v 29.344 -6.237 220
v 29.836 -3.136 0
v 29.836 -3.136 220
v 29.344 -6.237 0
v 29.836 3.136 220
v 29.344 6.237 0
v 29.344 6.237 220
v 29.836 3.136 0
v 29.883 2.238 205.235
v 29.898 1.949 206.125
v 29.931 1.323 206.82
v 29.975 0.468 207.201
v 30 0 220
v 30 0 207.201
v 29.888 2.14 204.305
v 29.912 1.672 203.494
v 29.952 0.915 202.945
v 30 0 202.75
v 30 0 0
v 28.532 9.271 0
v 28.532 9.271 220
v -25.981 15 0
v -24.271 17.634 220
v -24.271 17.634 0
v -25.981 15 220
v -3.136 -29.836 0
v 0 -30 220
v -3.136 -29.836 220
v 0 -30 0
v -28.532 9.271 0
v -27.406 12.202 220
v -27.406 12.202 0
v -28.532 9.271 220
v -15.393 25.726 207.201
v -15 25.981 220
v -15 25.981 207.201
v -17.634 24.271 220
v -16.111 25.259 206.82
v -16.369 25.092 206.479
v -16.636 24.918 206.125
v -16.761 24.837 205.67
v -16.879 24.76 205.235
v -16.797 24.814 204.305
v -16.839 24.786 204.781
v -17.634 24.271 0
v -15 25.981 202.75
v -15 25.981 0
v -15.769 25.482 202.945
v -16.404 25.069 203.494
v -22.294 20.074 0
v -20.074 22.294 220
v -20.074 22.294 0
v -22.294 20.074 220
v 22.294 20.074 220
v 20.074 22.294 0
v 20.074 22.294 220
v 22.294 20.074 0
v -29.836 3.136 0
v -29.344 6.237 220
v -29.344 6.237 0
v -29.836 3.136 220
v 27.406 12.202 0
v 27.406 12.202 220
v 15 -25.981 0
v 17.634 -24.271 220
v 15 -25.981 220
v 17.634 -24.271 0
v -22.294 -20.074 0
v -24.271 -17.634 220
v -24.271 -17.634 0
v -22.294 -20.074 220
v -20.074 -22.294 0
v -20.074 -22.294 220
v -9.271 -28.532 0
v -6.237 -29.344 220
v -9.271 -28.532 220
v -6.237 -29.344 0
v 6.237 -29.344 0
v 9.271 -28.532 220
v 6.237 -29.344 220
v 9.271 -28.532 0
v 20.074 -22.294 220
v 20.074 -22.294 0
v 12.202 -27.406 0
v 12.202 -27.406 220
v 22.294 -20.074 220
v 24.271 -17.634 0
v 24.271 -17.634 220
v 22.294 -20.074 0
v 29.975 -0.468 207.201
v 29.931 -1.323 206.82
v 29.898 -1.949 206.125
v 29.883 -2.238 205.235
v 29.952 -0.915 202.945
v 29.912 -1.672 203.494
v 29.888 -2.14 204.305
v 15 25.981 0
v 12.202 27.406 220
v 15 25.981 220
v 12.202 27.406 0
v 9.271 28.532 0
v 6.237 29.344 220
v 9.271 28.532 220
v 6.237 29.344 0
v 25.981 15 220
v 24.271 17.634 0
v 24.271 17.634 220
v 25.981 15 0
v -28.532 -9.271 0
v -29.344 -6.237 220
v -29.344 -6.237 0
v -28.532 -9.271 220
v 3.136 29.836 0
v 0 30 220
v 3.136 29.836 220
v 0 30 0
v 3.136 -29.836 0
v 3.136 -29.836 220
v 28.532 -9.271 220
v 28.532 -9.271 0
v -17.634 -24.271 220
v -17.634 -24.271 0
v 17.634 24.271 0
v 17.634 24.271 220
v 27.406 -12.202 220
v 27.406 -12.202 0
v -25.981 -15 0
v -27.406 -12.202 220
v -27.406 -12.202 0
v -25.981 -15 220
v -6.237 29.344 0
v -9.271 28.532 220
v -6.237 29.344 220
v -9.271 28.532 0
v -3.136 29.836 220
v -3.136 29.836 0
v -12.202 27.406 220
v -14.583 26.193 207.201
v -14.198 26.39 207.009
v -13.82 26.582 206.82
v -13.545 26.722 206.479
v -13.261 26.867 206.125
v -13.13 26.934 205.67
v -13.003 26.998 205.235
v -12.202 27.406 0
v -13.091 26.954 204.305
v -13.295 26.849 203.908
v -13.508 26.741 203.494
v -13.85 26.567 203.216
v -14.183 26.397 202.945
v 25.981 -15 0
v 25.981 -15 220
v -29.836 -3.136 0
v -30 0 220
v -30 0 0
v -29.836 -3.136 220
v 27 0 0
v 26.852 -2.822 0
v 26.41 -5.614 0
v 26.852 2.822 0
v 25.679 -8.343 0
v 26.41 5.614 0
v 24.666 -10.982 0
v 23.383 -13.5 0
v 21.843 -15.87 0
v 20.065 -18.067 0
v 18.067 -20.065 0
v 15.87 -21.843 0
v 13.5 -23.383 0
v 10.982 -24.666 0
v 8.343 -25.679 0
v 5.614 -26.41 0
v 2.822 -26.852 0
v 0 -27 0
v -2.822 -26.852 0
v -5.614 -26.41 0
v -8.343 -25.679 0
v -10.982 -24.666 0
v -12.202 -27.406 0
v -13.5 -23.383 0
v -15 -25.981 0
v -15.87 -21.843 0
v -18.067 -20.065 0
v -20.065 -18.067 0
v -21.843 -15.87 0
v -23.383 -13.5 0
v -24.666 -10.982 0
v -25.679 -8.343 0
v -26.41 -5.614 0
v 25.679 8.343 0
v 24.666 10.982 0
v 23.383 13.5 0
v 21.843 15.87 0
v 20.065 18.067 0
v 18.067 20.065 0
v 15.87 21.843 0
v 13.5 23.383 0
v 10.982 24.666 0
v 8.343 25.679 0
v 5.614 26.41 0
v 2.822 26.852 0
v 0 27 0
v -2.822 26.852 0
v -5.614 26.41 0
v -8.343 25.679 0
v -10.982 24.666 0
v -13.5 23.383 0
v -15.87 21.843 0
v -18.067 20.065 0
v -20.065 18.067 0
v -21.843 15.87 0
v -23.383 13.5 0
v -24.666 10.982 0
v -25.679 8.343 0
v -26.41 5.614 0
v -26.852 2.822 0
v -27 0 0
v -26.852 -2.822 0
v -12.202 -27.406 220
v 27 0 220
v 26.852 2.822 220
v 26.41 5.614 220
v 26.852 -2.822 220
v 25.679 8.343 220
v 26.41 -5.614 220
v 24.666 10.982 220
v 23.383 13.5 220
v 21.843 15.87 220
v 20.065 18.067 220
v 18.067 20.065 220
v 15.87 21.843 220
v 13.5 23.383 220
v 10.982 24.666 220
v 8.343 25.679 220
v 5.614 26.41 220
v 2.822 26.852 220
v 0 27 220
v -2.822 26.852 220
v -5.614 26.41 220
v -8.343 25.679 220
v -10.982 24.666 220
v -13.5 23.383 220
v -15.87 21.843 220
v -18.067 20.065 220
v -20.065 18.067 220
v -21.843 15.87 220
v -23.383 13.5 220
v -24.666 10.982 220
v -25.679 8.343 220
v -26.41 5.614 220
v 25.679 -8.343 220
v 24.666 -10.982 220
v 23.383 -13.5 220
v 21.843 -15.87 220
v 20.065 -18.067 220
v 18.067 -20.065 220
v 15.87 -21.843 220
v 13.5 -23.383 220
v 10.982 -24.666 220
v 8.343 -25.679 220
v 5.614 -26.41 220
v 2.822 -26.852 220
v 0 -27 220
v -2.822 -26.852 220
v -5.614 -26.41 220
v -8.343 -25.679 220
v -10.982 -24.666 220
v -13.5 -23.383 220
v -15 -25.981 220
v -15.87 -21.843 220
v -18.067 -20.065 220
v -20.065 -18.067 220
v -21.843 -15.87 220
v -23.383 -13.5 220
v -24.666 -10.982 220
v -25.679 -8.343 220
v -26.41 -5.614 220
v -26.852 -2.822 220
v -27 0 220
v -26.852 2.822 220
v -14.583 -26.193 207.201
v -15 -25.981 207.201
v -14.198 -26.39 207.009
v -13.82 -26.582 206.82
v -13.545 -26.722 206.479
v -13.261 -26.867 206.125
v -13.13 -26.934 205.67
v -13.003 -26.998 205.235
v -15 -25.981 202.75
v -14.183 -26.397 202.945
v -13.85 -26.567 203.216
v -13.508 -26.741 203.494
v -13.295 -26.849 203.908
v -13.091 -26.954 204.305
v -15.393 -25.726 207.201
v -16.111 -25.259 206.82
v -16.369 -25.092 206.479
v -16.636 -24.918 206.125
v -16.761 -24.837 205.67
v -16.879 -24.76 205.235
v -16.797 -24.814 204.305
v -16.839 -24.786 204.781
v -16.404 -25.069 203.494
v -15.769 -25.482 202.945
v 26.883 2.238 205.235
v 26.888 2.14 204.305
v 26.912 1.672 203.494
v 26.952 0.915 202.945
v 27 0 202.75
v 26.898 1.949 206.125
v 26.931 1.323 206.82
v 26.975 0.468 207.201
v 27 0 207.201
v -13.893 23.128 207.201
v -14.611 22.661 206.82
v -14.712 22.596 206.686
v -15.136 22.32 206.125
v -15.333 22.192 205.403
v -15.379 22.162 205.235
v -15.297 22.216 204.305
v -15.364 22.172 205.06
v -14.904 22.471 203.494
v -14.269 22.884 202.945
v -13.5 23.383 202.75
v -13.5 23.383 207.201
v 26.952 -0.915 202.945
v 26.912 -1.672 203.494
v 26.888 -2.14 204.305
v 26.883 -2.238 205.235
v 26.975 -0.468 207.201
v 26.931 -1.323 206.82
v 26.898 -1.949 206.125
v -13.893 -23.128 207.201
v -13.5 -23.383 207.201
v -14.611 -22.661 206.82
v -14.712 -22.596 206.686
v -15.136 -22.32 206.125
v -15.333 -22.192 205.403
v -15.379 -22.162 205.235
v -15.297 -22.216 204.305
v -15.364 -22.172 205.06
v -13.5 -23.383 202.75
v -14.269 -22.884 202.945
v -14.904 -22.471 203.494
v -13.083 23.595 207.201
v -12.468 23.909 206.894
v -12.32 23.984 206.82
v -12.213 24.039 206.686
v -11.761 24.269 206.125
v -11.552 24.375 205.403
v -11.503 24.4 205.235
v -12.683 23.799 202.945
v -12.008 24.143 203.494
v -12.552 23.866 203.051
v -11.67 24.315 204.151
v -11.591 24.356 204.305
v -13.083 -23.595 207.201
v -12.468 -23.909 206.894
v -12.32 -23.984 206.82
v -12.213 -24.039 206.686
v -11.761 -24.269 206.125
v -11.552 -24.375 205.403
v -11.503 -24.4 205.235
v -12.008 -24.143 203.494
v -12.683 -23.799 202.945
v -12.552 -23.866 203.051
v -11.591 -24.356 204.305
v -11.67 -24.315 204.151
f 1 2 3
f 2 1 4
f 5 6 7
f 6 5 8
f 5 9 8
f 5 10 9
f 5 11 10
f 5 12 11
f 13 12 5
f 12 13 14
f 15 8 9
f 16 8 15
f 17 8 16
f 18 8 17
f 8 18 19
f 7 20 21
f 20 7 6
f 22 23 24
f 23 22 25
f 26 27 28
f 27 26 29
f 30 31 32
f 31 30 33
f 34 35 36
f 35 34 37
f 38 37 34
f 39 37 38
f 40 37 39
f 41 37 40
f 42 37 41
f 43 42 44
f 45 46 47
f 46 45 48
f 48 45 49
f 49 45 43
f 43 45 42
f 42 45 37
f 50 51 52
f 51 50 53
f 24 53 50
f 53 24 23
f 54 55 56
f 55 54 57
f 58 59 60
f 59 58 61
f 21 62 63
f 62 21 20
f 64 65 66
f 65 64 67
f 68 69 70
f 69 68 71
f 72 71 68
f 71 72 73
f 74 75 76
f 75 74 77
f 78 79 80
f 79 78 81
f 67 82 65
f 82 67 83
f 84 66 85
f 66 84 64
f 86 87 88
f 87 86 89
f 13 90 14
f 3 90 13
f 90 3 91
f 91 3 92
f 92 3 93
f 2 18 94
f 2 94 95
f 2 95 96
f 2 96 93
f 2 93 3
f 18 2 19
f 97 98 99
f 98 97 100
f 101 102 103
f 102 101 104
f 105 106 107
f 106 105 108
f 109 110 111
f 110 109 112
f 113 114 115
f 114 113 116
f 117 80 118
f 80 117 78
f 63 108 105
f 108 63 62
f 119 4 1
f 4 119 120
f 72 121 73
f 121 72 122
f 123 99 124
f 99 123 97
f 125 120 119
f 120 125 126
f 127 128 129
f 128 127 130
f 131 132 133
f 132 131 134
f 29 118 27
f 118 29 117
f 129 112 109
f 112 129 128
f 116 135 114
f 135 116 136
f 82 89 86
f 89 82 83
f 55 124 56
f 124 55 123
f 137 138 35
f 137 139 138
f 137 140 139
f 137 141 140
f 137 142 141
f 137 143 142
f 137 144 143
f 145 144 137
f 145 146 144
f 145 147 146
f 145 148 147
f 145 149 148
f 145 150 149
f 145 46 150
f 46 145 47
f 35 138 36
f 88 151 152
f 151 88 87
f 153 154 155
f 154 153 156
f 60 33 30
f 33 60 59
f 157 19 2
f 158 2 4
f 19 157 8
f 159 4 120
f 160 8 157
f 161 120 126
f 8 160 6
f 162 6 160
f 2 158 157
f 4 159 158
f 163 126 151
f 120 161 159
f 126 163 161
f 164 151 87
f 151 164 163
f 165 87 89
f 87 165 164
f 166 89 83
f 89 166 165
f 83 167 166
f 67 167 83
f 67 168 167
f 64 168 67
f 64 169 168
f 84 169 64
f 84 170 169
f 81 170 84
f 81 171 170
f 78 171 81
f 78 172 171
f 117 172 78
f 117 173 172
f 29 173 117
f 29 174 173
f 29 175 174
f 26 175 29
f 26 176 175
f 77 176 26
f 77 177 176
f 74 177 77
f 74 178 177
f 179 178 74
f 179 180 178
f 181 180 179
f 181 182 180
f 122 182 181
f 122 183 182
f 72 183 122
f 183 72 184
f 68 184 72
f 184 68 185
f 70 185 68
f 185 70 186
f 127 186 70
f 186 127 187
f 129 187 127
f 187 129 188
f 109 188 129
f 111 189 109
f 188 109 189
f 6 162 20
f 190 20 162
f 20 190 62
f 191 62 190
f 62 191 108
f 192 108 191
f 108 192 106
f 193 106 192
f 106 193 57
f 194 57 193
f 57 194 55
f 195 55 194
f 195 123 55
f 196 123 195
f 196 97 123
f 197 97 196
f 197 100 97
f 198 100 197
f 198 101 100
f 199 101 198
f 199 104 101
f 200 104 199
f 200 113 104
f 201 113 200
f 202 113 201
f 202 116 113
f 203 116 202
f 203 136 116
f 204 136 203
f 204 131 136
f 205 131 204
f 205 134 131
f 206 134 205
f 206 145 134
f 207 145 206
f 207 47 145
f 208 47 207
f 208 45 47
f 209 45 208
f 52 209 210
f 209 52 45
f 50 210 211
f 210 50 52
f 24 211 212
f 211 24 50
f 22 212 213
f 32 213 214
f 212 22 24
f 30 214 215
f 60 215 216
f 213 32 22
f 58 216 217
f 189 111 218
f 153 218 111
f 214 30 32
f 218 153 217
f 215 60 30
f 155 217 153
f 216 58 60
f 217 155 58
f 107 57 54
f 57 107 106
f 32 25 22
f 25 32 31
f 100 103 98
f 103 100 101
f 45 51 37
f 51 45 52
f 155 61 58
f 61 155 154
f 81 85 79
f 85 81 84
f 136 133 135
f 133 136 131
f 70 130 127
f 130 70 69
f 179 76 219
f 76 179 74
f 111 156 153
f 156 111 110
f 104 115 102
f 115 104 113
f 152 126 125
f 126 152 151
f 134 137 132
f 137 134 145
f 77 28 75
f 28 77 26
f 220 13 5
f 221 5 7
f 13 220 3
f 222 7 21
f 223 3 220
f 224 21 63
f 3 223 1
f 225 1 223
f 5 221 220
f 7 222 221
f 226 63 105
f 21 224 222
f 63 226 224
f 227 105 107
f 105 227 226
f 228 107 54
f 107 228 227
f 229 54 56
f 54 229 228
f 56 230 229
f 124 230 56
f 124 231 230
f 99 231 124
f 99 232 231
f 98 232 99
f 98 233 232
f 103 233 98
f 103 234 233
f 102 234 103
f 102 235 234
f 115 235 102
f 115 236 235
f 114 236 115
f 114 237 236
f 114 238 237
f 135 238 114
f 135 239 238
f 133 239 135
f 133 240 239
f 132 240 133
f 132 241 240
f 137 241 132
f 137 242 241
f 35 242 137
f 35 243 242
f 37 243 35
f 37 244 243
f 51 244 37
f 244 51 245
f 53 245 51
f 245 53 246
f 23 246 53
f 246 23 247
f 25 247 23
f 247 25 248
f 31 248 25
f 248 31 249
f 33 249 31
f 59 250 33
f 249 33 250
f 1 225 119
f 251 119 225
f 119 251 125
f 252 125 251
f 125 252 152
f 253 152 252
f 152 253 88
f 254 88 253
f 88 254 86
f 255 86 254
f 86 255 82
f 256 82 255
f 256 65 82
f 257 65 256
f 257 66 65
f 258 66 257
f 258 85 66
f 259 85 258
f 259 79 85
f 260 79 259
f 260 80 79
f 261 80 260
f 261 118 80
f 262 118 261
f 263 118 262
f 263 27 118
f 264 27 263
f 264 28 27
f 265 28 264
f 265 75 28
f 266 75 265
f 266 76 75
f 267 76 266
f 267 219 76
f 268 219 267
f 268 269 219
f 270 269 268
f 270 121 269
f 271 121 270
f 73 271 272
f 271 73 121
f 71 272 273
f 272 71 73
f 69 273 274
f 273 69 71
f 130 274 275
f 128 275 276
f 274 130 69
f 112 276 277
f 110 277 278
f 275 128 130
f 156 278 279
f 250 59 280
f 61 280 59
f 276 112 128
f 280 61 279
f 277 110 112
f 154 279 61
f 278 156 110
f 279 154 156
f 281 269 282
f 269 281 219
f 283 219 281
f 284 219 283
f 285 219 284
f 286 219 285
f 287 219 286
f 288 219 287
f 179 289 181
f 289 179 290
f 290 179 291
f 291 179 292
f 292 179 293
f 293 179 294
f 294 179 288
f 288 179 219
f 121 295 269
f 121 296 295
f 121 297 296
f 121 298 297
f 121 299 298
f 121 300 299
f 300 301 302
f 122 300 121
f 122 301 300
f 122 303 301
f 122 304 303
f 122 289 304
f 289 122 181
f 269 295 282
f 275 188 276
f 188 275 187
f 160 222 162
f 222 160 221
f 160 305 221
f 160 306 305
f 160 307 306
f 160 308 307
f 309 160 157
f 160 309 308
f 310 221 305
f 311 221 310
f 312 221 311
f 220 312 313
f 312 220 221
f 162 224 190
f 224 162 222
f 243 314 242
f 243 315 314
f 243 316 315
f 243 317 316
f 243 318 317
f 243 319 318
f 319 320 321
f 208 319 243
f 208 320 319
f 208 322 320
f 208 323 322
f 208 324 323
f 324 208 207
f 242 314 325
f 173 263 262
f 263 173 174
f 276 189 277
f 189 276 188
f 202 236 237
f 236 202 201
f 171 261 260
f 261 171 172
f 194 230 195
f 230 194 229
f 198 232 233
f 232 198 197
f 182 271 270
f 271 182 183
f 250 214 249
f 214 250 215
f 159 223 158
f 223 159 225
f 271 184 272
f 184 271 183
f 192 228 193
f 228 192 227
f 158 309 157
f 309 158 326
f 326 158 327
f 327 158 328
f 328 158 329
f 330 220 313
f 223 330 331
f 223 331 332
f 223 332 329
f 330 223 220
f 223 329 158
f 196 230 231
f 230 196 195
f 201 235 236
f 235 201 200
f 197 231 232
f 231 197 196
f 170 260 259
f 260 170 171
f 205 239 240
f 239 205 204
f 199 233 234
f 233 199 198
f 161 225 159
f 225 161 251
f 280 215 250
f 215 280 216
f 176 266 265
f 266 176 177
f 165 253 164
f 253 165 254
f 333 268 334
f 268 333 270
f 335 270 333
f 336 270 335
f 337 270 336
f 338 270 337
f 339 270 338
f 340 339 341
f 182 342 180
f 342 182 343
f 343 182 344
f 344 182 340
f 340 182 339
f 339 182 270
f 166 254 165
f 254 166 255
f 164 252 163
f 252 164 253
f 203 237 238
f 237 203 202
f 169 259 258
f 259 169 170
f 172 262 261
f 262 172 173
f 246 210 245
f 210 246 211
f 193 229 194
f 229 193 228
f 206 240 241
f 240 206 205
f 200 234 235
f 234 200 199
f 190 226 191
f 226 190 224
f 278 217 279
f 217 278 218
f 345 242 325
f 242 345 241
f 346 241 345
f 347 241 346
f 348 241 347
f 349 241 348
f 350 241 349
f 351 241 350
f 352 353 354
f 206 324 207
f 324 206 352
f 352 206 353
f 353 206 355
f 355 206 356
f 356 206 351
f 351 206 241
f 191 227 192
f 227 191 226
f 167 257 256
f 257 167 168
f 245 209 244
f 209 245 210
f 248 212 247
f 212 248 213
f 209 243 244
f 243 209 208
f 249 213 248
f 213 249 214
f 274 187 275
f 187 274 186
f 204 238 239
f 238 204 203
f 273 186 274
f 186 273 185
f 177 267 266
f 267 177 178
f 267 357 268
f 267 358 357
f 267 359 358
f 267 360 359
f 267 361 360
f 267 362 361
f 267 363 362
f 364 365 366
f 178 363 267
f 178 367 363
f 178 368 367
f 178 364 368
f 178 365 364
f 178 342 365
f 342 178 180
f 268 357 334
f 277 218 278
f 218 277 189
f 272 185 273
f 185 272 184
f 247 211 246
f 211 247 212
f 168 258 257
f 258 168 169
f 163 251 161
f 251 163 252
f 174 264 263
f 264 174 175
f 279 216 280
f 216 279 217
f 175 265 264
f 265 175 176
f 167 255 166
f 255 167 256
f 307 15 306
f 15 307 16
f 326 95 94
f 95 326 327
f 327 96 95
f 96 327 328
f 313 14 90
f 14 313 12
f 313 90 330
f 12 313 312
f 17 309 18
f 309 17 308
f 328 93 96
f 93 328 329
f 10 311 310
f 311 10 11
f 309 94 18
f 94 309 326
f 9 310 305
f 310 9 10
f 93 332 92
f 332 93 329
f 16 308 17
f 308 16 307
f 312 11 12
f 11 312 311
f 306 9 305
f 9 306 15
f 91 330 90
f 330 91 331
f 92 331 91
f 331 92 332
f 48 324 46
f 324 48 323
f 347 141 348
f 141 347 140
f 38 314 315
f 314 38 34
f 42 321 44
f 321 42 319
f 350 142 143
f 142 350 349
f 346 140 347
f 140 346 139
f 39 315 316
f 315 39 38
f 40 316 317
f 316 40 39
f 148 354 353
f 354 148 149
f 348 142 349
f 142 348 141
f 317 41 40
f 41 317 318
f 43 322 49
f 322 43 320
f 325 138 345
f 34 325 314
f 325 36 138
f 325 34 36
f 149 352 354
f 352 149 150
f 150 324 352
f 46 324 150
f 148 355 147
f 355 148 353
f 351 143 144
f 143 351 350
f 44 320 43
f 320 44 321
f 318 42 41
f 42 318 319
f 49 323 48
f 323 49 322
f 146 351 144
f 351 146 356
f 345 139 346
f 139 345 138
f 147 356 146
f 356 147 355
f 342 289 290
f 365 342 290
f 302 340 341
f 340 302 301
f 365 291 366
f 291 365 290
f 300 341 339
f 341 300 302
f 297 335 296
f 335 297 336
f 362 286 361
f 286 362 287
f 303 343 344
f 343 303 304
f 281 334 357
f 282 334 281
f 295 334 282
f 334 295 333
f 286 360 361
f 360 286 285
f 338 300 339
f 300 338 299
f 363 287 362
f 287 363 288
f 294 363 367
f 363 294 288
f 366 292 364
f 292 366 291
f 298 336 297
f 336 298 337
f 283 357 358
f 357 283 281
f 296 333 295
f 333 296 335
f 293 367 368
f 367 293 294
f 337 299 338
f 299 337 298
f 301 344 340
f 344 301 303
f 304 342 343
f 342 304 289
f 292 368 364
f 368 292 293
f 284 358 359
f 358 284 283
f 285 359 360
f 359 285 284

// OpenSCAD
WIDTH = 60;
THICKNESS = 3;
HEIGHT = 220;
SLOP = 2;
HOLE_POS = HEIGHT - 15;
HOLE_WIDTH = 4.5;

difference() {
    cylinder(h=HEIGHT, r=WIDTH/2, $fn=60);
    translate([0, 0, -SLOP])
        cylinder(h=HEIGHT + 2*SLOP, r=WIDTH/2 - THICKNESS, $fn=60);
    pin();
    rotate([0, 0, 120]) pin();
    rotate([0, 0, -120]) pin();
}

module pin() {
    translate([WIDTH / 2, 0, HOLE_POS])
    rotate([0, 90, 0])
        cylinder(h=10, r=HOLE_WIDTH/2, center=true, $fn=15);
}
